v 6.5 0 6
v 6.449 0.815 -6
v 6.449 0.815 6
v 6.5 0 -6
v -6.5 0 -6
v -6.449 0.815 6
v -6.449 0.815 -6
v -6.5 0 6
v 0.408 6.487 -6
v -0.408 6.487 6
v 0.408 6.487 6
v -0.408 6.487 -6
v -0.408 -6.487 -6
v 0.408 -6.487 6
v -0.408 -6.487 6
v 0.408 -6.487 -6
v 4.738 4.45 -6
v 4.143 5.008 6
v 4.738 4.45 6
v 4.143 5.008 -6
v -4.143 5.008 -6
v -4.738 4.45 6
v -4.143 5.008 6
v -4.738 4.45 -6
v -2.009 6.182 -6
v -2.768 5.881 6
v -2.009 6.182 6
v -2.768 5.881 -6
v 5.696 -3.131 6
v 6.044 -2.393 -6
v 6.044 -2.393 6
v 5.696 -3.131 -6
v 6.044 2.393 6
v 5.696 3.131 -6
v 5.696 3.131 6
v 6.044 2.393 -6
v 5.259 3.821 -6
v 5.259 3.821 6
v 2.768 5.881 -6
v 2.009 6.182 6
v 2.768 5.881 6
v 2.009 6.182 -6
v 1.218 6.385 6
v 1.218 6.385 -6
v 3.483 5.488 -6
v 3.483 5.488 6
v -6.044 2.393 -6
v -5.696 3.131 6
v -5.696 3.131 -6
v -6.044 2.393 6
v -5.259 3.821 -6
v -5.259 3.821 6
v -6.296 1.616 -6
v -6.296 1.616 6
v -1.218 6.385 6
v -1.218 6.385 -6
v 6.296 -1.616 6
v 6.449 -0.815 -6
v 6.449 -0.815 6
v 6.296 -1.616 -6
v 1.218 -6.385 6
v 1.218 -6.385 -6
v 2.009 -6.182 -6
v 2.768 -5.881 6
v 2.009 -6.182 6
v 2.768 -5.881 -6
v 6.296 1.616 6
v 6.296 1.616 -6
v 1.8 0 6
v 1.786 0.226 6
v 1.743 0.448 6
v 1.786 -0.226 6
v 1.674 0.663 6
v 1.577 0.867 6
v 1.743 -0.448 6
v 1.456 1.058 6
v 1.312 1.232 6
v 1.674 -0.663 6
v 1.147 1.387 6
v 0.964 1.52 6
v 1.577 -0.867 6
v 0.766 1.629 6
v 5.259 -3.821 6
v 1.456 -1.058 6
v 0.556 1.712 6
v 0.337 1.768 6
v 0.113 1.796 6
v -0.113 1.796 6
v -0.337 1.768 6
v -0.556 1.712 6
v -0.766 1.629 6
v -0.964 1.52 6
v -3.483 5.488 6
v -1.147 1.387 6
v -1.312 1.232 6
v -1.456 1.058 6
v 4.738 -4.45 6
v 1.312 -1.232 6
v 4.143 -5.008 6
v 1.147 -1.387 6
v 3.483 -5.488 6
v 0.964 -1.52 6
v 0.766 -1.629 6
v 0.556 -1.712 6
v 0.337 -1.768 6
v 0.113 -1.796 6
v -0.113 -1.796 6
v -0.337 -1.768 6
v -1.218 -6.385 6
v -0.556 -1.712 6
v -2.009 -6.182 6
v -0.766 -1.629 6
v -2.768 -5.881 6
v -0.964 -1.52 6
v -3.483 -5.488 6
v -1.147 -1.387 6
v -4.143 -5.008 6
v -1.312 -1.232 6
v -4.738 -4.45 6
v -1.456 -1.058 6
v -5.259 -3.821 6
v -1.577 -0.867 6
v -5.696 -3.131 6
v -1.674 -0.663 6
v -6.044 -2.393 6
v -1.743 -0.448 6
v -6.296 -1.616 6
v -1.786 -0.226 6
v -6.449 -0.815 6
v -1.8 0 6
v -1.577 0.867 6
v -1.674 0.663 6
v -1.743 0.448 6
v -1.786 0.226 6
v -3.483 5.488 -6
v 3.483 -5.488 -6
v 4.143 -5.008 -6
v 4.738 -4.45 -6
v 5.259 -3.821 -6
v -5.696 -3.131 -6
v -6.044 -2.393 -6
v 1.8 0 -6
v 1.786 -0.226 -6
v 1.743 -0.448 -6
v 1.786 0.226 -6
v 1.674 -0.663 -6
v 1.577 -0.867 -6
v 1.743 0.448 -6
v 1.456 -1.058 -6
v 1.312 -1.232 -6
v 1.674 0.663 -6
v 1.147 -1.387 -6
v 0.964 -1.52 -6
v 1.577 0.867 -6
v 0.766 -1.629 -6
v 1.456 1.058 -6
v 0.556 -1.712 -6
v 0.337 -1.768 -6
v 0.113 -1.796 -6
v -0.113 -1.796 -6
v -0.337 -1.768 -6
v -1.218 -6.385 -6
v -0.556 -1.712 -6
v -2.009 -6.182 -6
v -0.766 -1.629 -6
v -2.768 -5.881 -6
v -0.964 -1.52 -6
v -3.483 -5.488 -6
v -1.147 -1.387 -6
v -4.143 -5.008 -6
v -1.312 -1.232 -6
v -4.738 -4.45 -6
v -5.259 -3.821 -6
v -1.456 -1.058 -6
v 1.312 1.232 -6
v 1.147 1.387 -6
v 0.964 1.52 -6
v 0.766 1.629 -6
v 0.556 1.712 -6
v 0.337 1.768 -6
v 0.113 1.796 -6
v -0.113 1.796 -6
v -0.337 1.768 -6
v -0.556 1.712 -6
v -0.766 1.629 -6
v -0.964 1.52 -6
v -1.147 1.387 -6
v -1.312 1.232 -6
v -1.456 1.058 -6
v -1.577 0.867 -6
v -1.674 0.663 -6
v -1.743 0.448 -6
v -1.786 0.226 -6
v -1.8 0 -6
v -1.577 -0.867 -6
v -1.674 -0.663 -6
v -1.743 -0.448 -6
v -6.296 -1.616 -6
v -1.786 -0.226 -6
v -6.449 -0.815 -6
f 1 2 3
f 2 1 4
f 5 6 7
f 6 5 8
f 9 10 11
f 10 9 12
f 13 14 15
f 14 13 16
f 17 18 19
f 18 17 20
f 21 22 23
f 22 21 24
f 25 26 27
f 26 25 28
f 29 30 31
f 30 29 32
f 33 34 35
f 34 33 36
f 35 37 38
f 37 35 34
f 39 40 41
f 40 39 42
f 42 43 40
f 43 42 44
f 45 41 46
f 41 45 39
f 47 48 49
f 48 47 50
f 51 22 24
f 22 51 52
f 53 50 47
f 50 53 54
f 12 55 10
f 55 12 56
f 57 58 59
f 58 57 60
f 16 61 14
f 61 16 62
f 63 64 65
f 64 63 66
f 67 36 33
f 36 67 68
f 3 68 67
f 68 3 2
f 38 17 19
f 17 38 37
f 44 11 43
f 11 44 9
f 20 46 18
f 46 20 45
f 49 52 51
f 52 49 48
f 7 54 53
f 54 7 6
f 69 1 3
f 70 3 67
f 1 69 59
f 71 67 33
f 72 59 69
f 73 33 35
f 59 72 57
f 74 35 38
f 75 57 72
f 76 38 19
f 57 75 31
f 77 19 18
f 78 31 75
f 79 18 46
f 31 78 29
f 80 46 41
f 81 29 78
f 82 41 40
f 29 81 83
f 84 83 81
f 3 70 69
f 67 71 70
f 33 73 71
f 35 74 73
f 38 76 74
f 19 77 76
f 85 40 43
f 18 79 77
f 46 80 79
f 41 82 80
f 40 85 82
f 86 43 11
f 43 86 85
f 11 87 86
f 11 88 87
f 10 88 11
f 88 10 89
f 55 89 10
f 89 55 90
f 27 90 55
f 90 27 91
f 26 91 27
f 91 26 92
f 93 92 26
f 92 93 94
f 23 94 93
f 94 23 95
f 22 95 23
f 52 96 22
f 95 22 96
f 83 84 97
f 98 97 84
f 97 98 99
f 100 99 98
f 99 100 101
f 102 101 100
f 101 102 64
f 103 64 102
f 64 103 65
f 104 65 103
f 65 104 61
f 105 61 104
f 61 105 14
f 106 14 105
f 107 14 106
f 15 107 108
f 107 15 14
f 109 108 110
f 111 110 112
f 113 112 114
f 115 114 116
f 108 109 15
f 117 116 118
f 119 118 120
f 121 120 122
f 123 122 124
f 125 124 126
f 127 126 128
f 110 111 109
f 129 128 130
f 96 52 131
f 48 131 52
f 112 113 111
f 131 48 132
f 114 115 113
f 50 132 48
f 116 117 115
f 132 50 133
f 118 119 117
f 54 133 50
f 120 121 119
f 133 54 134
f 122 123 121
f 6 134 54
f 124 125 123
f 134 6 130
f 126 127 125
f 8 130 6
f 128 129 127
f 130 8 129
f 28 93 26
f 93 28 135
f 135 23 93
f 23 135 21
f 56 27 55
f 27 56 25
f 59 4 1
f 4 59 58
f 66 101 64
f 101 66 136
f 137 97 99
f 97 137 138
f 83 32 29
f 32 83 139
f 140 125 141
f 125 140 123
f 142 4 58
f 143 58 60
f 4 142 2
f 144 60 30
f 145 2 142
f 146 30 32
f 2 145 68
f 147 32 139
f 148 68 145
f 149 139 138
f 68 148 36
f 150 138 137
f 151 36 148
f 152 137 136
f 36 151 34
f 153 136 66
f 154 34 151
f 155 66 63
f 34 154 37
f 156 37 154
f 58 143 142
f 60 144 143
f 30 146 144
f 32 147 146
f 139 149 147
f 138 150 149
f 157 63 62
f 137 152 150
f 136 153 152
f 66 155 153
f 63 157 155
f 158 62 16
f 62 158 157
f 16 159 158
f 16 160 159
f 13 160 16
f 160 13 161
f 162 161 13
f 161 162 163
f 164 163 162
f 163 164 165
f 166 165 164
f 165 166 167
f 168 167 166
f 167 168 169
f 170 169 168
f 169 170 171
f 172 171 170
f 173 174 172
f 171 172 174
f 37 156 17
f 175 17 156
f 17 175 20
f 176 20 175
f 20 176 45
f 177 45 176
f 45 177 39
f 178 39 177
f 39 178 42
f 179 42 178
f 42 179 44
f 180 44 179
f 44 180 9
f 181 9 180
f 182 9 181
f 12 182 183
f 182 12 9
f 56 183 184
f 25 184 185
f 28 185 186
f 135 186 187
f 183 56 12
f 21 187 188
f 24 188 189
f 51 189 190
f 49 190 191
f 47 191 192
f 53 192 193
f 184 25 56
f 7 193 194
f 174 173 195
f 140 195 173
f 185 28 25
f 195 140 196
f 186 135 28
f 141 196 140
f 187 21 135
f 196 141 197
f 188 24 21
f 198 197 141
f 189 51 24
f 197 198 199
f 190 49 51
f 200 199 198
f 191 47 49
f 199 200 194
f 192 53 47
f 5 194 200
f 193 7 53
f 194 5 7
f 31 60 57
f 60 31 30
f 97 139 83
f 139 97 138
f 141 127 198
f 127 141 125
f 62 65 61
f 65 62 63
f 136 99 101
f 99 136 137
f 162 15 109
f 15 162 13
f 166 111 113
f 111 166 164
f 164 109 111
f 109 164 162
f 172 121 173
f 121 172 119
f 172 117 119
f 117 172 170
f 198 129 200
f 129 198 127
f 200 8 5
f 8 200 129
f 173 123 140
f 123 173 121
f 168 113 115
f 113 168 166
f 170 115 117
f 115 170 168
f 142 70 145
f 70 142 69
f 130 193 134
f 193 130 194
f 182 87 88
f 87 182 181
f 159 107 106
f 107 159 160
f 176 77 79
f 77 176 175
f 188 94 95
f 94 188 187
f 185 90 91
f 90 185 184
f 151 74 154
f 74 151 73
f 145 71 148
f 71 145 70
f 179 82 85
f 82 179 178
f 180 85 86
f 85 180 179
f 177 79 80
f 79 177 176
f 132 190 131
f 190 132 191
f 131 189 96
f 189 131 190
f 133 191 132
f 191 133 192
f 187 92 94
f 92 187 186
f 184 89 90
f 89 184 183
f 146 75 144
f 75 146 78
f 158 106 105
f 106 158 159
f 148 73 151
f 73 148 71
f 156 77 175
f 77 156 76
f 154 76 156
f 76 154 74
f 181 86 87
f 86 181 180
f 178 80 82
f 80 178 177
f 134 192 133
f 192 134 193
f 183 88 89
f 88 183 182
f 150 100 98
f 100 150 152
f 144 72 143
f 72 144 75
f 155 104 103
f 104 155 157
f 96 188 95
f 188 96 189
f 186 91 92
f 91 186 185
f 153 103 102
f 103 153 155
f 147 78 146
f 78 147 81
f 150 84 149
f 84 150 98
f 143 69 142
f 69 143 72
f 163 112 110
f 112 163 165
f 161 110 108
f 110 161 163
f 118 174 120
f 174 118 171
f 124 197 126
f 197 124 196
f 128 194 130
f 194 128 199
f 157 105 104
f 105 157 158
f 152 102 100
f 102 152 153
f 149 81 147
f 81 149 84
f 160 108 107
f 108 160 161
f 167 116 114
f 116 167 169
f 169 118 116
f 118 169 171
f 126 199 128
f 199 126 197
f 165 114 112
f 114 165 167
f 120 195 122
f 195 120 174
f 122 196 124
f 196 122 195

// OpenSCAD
$fn = 50;


difference() {
	union() {
		translate(v = [0, 0, -6.0000000000]) {
			cylinder(h = 12, r = 6.5000000000);
		}
	}
	union() {
		translate(v = [0, 0, -100.0000000000]) {
			cylinder(h = 200, r = 1.8000000000);
		}
	}
}
